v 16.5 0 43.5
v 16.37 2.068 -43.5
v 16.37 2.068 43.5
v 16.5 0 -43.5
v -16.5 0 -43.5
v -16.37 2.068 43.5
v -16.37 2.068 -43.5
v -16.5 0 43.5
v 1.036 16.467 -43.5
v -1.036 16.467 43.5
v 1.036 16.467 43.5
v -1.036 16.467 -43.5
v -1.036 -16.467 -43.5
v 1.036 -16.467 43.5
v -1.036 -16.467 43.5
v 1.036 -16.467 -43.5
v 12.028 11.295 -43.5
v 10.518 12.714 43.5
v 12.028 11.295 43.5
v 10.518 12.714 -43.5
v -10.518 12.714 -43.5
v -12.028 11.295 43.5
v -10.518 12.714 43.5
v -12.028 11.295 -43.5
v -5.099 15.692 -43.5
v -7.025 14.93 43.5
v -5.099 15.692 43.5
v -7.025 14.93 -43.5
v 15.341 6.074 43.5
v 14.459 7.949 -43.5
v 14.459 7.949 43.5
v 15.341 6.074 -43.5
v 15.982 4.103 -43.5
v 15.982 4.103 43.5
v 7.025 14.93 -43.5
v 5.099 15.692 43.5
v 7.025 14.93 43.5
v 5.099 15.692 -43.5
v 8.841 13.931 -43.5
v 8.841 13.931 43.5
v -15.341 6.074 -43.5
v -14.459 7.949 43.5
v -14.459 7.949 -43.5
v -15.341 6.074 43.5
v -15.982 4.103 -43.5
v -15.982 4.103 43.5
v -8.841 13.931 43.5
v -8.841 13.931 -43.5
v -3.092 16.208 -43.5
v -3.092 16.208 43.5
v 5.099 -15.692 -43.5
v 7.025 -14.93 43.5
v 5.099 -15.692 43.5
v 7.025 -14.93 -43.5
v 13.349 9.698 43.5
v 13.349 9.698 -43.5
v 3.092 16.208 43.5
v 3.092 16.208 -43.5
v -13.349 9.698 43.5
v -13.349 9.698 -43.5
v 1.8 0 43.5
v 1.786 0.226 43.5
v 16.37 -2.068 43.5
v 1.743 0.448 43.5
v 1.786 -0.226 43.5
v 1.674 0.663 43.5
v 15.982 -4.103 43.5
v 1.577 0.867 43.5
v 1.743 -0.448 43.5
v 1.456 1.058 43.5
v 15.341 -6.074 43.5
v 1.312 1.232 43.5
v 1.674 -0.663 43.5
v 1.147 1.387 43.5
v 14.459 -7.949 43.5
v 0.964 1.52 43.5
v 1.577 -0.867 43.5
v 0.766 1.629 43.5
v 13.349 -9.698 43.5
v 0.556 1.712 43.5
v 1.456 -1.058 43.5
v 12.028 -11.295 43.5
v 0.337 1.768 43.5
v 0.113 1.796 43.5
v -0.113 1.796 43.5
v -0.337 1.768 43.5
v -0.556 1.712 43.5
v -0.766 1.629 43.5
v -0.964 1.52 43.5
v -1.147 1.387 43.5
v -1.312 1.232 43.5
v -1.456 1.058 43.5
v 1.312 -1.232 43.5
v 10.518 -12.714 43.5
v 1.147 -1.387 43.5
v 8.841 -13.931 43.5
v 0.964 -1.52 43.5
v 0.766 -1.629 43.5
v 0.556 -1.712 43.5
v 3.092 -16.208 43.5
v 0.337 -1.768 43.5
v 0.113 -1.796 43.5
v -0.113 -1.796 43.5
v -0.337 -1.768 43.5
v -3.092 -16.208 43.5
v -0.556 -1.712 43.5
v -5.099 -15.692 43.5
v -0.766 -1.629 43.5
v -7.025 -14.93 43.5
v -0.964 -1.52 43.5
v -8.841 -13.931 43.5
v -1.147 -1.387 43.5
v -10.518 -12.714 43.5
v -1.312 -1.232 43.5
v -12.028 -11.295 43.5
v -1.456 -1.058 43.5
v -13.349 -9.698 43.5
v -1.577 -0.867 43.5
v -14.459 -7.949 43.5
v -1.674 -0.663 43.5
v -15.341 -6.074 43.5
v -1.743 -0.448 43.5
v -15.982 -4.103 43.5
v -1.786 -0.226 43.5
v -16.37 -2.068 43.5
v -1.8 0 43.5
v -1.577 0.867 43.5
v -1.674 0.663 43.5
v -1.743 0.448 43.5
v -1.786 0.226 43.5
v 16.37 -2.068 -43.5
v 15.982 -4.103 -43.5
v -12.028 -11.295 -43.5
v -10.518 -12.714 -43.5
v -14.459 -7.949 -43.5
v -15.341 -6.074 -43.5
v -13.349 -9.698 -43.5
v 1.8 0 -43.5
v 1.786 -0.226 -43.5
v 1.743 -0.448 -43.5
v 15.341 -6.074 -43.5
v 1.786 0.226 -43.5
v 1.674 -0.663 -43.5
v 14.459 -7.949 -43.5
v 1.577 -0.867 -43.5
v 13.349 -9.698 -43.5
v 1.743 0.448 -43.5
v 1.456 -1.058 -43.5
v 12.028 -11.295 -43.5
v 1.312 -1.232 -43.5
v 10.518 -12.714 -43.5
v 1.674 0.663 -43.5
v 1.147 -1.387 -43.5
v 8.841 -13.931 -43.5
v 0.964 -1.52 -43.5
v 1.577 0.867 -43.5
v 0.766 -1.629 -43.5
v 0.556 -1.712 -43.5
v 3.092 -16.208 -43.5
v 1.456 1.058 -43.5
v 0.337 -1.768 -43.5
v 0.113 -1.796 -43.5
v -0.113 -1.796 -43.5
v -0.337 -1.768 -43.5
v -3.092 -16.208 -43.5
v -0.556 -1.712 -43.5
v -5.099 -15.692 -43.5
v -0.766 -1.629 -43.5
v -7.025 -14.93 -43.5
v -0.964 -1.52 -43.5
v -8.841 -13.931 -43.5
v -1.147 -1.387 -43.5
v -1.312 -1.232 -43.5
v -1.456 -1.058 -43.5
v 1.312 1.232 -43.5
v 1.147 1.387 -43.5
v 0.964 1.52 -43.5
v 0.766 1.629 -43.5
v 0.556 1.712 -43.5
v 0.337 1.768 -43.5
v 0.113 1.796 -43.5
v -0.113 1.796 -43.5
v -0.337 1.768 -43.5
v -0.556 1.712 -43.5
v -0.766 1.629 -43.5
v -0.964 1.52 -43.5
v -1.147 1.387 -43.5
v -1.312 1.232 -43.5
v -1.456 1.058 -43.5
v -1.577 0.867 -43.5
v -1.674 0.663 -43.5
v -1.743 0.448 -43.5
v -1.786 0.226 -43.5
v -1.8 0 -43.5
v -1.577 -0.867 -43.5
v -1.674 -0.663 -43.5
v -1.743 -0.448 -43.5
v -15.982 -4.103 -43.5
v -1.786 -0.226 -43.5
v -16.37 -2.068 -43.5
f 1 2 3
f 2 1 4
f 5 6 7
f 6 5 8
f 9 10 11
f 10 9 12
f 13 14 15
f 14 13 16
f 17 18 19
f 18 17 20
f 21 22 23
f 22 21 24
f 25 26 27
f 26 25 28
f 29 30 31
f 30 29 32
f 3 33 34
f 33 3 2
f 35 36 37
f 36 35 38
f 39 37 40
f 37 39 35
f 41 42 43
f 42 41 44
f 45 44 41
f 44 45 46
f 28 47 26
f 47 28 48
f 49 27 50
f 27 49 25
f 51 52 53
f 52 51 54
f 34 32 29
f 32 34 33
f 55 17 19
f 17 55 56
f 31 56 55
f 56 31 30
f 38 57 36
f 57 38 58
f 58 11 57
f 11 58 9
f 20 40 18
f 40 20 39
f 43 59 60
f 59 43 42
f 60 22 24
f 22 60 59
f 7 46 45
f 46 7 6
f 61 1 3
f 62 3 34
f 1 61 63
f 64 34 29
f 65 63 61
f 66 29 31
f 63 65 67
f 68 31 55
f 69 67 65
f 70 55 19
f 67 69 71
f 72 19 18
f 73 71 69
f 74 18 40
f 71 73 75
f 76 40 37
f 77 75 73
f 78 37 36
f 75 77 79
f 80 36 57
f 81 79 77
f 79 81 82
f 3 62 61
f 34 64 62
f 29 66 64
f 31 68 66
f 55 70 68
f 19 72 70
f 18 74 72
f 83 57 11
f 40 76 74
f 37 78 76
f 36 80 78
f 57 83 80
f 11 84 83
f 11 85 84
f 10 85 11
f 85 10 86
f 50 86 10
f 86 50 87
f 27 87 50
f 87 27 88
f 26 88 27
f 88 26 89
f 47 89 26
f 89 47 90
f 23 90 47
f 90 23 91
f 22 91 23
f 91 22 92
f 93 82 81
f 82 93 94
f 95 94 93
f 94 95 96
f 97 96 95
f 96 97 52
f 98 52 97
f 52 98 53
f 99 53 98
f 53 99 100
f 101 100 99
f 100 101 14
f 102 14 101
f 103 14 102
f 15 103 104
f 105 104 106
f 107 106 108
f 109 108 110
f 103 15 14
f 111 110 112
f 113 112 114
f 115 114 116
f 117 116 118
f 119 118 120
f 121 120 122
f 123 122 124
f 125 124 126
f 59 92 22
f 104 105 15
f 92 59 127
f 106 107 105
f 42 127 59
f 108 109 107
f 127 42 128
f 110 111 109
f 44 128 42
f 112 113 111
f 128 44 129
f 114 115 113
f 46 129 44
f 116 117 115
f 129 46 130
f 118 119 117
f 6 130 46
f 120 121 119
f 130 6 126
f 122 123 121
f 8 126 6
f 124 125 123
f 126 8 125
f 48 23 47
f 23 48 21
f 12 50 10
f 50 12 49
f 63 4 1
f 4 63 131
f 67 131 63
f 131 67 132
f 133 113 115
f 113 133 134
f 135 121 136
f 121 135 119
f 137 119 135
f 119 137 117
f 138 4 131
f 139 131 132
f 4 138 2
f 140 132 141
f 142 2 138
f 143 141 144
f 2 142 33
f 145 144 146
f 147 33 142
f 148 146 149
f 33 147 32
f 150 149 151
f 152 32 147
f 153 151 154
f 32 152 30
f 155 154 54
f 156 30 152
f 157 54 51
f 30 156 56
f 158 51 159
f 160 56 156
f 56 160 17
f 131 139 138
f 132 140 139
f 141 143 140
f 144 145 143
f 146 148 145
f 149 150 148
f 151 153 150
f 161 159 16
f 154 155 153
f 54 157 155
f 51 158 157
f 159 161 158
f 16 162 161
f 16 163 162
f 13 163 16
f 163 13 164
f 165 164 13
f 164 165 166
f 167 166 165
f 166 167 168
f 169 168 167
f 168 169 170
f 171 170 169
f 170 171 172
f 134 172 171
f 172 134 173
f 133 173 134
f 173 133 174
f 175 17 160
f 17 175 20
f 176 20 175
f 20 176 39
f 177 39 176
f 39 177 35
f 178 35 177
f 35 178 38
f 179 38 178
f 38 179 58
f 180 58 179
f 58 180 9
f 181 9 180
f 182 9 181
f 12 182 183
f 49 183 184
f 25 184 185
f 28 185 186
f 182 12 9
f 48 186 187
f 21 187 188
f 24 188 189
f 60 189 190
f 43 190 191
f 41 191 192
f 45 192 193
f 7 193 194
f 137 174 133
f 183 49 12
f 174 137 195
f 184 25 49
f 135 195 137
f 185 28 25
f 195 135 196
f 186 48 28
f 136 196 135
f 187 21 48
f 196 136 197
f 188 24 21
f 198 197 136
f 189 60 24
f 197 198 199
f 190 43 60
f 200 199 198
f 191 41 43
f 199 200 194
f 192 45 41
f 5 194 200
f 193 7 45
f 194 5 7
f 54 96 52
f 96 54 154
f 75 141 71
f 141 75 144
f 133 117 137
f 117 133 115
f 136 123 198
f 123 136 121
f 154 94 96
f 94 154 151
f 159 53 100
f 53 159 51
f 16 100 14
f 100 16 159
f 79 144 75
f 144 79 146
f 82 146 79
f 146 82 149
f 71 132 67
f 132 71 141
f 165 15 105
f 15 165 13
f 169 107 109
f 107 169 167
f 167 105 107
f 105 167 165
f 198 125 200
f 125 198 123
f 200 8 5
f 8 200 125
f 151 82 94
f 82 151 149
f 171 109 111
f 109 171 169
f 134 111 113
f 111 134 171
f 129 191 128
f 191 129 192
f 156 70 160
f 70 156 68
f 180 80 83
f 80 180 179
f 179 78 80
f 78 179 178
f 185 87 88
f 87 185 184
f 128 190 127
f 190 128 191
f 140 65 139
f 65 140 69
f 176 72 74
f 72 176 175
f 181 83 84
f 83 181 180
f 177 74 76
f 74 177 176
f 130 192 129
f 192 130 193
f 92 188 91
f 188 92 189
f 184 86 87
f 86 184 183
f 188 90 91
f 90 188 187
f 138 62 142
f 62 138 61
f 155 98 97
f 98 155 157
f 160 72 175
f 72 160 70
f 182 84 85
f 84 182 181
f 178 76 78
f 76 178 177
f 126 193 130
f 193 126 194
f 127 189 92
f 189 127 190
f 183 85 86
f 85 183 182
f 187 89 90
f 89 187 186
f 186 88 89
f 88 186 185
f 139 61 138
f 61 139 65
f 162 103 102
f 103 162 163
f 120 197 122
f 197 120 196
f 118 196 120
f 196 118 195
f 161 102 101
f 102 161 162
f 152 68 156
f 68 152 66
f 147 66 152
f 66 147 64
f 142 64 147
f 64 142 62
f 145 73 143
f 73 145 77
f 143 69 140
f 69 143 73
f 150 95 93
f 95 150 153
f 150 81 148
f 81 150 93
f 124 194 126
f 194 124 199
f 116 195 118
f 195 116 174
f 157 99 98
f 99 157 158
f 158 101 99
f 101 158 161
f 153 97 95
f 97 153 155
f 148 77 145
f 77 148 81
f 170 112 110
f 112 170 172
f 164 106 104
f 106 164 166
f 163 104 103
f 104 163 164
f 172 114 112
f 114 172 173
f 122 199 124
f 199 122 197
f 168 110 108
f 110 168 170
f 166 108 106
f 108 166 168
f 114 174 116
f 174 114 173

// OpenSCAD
$fn = 50;


difference() {
	union() {
		translate(v = [0, 0, -43.5000000000]) {
			cylinder(h = 87, r = 16.5000000000);
		}
	}
	union() {
		translate(v = [0, 0, -100.0000000000]) {
			cylinder(h = 200, r = 1.8000000000);
		}
	}
}
